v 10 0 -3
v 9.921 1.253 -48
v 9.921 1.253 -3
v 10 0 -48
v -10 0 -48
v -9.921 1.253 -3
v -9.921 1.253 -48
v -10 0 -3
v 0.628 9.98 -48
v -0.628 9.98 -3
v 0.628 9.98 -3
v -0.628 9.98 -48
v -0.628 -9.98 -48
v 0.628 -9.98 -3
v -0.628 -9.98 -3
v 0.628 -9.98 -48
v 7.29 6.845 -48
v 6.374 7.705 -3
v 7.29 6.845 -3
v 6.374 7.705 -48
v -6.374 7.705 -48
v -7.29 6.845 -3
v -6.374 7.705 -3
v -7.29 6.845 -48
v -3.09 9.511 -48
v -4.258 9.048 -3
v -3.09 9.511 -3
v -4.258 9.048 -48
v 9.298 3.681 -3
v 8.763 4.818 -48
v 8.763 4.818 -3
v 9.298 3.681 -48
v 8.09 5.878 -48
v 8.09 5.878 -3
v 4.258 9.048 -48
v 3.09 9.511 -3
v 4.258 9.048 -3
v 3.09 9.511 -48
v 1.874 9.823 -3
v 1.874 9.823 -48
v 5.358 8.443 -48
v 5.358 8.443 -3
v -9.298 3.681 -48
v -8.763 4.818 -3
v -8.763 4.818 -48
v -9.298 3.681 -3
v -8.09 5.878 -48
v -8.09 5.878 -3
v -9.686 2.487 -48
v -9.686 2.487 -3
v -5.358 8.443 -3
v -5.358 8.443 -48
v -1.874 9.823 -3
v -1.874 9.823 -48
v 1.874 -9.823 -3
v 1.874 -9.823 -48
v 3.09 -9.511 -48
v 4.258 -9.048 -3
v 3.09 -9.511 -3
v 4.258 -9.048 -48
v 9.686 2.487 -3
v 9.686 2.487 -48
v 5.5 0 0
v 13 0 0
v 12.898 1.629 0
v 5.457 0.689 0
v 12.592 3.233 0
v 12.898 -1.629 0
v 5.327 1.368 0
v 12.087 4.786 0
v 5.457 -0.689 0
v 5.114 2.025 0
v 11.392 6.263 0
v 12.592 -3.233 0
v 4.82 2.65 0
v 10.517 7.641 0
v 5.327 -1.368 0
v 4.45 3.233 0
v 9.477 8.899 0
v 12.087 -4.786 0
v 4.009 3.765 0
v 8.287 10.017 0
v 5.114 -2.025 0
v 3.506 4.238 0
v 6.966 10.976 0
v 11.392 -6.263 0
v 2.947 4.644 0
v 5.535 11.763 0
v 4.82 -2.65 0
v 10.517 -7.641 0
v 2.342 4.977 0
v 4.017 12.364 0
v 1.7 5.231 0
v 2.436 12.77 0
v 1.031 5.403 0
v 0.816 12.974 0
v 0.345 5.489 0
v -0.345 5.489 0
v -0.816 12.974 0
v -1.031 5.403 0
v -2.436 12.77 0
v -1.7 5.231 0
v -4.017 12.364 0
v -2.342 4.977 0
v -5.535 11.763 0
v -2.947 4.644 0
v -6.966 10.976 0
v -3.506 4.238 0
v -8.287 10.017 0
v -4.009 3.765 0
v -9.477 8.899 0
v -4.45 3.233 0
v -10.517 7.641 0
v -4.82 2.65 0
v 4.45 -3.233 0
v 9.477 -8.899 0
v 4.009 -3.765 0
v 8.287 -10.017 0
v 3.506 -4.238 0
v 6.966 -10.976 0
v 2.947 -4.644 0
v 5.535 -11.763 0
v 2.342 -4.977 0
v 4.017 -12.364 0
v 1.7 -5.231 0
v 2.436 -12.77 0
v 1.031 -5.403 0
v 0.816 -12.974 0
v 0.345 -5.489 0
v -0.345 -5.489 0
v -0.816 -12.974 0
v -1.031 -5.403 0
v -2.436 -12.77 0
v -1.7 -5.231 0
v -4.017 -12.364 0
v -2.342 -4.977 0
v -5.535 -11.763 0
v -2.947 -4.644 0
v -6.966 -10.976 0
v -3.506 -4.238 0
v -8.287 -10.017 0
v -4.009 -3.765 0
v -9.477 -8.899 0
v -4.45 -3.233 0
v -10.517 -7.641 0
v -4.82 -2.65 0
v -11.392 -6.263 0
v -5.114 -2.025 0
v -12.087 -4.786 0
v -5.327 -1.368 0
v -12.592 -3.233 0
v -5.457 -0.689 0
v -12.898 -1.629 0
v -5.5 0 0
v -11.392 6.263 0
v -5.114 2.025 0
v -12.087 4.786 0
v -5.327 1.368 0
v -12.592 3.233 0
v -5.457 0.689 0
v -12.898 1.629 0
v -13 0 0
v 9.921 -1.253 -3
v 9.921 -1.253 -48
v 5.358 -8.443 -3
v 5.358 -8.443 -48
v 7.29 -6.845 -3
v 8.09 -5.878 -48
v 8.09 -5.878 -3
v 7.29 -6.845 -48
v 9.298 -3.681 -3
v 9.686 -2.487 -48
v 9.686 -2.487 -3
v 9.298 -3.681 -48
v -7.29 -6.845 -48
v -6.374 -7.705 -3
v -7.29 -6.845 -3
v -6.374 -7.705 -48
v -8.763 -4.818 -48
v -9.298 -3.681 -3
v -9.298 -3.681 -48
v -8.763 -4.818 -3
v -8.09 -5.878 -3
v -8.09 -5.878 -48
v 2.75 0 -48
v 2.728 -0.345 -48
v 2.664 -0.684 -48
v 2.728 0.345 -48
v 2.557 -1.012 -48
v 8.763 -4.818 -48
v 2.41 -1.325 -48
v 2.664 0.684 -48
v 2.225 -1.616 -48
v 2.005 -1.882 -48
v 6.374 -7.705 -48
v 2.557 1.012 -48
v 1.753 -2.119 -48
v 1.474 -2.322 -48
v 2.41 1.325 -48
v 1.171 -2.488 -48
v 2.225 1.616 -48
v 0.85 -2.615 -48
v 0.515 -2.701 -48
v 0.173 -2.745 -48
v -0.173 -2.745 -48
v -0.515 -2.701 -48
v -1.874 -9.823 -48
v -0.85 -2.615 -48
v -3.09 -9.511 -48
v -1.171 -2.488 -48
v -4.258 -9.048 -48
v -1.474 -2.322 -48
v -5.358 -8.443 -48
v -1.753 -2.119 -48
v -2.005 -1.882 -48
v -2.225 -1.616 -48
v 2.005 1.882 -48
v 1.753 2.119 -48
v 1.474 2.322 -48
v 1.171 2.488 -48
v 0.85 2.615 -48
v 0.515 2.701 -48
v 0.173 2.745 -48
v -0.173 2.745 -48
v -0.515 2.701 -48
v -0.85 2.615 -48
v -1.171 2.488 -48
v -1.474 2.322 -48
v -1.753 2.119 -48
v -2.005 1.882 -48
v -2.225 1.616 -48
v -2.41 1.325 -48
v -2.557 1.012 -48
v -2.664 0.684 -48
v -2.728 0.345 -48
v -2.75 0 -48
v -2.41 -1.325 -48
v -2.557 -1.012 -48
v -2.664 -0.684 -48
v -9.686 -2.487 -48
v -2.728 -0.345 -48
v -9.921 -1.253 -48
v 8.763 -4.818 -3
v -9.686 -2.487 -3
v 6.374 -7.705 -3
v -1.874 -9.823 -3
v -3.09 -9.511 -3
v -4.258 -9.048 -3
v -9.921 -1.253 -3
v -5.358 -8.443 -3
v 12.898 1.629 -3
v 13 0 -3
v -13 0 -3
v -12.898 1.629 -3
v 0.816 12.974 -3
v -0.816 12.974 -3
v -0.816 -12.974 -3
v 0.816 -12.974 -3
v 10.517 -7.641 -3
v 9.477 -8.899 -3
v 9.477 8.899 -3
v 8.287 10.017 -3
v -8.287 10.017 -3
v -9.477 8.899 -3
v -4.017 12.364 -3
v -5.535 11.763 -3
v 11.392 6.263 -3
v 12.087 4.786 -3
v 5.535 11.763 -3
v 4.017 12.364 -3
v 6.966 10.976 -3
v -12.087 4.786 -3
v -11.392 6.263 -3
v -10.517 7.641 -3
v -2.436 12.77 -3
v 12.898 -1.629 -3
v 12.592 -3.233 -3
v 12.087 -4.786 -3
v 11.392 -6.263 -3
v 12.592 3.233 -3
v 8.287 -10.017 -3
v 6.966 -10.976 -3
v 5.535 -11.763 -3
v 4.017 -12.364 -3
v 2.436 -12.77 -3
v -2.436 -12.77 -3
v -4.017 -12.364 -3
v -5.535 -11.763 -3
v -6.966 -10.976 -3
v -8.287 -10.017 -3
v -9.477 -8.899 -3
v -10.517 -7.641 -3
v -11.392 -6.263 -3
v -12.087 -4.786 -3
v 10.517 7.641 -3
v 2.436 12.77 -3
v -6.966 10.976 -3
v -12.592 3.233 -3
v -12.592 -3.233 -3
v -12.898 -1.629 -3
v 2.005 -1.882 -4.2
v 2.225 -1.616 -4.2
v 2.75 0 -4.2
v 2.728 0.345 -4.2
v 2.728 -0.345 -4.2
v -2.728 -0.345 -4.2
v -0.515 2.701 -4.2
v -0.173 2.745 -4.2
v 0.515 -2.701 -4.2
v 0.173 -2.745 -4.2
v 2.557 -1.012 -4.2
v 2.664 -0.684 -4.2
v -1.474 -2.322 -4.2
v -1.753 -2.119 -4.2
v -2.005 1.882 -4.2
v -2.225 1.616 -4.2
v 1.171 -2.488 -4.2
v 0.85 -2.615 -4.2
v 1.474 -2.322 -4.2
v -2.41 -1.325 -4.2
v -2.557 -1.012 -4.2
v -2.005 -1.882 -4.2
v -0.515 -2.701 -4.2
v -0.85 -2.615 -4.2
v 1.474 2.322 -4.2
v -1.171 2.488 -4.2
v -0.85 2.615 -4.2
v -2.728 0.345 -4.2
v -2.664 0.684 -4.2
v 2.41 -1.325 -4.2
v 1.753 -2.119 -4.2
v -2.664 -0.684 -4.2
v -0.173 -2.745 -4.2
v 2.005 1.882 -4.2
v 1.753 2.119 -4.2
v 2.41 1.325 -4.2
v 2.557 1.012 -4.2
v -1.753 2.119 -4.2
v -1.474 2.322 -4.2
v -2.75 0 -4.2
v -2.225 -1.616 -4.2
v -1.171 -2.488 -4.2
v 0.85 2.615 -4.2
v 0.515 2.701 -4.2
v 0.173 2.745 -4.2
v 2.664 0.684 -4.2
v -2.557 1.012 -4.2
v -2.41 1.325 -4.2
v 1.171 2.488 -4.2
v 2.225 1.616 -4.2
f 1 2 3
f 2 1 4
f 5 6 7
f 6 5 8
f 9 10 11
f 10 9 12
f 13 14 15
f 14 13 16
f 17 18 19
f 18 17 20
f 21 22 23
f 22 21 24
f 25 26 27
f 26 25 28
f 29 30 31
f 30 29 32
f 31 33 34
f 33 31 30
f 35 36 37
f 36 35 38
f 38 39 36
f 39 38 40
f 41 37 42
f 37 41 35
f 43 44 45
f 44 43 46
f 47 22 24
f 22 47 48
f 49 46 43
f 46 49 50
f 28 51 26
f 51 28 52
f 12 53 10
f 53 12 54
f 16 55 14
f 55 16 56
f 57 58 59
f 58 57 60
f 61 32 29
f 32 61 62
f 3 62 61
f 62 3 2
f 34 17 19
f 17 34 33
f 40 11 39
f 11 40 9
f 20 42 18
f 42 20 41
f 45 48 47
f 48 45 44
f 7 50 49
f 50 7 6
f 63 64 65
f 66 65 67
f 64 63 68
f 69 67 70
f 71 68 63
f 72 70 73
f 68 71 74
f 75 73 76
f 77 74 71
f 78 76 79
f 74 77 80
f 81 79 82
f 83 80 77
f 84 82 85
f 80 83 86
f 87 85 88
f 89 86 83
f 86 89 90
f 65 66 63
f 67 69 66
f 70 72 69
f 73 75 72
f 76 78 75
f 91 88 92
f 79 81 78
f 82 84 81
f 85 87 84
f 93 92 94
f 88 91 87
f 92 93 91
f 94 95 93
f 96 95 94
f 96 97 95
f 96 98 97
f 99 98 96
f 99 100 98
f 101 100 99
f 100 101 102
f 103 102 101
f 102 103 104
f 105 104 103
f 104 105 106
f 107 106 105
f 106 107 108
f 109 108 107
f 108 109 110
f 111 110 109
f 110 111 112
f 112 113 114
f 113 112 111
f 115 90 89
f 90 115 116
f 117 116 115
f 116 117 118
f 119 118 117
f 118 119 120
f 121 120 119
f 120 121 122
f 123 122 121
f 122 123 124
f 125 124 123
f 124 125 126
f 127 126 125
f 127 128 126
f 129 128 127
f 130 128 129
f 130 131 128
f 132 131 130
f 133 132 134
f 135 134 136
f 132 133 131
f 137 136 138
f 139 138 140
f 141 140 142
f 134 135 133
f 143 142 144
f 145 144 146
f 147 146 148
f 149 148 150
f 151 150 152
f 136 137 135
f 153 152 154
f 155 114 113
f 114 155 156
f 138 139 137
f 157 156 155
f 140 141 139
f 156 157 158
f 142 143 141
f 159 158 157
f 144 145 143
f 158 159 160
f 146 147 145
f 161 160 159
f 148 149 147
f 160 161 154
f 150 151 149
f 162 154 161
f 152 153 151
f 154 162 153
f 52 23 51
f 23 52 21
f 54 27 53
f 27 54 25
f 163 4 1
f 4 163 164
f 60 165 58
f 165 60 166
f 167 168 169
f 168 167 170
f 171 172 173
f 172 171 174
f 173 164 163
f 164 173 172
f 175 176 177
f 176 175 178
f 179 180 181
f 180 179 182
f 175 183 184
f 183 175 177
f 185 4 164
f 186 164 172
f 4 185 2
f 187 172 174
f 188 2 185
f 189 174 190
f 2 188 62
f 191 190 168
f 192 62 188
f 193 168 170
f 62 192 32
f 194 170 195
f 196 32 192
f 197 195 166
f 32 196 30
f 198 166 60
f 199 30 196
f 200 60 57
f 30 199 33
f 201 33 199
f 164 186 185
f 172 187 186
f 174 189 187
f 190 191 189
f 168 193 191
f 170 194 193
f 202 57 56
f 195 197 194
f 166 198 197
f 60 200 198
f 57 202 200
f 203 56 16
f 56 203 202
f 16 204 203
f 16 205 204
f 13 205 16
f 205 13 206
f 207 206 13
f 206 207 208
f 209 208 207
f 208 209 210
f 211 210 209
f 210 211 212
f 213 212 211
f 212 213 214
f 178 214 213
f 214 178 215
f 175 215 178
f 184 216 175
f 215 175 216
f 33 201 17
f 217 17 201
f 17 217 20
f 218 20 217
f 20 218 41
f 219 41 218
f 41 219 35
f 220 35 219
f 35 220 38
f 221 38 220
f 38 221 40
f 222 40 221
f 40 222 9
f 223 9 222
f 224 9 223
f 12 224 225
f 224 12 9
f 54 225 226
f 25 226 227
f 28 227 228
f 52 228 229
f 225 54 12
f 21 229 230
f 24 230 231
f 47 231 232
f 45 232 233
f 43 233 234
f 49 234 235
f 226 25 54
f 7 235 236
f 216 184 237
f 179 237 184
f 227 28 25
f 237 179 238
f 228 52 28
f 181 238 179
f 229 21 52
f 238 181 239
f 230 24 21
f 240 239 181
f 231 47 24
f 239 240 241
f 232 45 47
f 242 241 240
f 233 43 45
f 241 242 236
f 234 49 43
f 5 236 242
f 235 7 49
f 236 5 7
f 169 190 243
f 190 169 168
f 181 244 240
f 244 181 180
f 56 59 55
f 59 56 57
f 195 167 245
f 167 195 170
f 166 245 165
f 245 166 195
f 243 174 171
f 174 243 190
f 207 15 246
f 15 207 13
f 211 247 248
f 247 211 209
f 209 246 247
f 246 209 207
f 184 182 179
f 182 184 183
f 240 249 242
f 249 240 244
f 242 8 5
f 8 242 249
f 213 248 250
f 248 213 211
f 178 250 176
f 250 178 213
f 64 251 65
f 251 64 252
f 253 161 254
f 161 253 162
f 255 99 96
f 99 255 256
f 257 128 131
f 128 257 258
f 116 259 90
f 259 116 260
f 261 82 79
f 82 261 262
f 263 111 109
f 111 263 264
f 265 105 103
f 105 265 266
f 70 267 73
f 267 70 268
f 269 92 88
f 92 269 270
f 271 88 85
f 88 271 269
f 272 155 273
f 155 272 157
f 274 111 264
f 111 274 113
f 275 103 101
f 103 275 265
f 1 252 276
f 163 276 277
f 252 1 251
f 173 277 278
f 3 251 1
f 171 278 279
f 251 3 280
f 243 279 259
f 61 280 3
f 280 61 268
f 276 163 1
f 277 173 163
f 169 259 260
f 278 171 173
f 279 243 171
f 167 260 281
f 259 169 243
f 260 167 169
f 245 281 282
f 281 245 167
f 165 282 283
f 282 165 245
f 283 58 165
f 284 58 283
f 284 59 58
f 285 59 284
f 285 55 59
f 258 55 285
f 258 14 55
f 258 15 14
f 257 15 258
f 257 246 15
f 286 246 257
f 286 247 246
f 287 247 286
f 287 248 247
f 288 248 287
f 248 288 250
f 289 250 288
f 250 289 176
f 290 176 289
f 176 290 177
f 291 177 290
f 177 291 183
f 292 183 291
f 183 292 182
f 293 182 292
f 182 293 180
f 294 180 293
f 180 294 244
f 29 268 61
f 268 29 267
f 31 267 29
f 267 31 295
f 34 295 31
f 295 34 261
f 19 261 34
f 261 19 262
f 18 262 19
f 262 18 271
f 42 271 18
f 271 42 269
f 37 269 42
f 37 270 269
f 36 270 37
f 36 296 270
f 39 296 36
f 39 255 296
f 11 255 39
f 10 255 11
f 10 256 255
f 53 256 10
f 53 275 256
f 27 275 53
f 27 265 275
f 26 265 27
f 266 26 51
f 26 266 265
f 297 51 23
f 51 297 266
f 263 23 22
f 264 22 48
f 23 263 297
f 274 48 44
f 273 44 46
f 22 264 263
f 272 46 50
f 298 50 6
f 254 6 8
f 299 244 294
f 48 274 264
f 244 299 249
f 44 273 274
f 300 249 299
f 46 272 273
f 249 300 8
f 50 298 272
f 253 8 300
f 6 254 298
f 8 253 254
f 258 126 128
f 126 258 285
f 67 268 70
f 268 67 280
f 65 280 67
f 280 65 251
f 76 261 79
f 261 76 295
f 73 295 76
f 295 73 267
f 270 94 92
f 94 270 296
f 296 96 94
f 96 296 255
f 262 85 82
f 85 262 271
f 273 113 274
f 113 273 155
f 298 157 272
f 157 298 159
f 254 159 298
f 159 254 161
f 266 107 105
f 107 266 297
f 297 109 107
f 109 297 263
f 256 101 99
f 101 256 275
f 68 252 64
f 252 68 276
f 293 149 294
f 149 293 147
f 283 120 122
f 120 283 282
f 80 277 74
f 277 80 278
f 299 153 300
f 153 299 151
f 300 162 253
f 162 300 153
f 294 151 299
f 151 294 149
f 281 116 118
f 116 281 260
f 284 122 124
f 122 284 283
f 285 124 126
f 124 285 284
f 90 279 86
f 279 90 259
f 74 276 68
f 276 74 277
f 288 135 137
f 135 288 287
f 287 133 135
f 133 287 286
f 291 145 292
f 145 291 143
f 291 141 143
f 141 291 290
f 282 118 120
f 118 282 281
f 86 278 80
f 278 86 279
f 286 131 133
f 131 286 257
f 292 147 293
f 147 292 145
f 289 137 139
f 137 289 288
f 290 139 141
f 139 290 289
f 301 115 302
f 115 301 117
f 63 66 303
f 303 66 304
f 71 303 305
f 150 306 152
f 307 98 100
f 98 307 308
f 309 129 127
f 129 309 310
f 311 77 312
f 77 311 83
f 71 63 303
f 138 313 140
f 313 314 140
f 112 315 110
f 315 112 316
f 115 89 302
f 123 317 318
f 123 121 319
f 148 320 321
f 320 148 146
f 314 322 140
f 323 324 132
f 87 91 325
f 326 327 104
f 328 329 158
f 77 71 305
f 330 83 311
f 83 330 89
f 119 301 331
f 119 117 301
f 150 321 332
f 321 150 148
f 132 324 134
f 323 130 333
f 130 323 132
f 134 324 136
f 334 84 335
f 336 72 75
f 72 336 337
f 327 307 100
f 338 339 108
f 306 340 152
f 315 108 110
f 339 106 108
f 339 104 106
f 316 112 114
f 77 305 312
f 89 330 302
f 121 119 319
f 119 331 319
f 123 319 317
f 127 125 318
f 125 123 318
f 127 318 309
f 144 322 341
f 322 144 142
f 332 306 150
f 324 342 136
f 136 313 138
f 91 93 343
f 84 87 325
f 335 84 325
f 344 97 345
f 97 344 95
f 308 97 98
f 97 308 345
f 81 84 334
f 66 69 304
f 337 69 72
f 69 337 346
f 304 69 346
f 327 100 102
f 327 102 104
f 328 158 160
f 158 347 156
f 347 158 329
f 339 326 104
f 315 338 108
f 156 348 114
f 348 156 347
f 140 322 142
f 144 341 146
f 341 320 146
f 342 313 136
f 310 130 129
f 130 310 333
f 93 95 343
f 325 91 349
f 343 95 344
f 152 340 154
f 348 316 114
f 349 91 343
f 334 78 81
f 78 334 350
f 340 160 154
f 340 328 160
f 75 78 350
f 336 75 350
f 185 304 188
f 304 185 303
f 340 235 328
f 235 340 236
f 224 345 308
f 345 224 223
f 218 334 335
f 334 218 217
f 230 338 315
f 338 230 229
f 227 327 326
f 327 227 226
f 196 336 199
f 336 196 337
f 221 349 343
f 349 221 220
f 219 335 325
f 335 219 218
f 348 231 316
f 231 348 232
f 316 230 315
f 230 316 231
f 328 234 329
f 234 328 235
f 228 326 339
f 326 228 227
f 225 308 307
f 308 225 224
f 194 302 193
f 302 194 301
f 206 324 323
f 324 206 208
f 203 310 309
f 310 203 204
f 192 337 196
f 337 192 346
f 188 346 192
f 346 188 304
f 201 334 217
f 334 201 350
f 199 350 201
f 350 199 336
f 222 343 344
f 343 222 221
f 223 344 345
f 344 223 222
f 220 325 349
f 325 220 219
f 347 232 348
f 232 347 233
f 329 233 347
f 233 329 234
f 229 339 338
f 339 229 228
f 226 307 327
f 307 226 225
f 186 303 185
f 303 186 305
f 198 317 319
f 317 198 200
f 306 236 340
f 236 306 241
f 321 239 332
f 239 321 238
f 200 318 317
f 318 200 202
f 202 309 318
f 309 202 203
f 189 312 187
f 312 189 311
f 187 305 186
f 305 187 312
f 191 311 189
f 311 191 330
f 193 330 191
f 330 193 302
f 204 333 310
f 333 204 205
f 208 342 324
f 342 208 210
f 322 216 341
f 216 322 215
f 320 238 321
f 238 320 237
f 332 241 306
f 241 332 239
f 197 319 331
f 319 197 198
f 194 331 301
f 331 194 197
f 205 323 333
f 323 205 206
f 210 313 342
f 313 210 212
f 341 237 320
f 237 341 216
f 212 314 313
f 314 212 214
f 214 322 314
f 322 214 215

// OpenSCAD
$fn = 50;


difference() {
	union() {
		translate(v = [0, 0, -48.0000000000]) {
			cylinder(h = 48, r = 10.0000000000);
		}
		translate(v = [0, 0, -3.0000000000]) {
			cylinder(h = 3, r = 13.0000000000);
		}
	}
	union() {
		translate(v = [0, 0, 0]) {
			rotate(a = [0, 0, 0]) {
				difference() {
					union() {
						#translate(v = [0, 0, -48.0000000000]) {
							cylinder(h = 48, r = 2.2500000000);
						}
						#translate(v = [0, 0, -4.2000000000]) {
							cylinder(h = 4.2000000000, r1 = 2.7500000000, r2 = 5.5000000000);
						}
						#translate(v = [0, 0, -48.0000000000]) {
							cylinder(h = 48, r = 2.7500000000);
						}
						#translate(v = [0, 0, -48.0000000000]) {
							cylinder(h = 48, r = 2.2500000000);
						}
					}
					union();
				}
			}
		}
	}
}
